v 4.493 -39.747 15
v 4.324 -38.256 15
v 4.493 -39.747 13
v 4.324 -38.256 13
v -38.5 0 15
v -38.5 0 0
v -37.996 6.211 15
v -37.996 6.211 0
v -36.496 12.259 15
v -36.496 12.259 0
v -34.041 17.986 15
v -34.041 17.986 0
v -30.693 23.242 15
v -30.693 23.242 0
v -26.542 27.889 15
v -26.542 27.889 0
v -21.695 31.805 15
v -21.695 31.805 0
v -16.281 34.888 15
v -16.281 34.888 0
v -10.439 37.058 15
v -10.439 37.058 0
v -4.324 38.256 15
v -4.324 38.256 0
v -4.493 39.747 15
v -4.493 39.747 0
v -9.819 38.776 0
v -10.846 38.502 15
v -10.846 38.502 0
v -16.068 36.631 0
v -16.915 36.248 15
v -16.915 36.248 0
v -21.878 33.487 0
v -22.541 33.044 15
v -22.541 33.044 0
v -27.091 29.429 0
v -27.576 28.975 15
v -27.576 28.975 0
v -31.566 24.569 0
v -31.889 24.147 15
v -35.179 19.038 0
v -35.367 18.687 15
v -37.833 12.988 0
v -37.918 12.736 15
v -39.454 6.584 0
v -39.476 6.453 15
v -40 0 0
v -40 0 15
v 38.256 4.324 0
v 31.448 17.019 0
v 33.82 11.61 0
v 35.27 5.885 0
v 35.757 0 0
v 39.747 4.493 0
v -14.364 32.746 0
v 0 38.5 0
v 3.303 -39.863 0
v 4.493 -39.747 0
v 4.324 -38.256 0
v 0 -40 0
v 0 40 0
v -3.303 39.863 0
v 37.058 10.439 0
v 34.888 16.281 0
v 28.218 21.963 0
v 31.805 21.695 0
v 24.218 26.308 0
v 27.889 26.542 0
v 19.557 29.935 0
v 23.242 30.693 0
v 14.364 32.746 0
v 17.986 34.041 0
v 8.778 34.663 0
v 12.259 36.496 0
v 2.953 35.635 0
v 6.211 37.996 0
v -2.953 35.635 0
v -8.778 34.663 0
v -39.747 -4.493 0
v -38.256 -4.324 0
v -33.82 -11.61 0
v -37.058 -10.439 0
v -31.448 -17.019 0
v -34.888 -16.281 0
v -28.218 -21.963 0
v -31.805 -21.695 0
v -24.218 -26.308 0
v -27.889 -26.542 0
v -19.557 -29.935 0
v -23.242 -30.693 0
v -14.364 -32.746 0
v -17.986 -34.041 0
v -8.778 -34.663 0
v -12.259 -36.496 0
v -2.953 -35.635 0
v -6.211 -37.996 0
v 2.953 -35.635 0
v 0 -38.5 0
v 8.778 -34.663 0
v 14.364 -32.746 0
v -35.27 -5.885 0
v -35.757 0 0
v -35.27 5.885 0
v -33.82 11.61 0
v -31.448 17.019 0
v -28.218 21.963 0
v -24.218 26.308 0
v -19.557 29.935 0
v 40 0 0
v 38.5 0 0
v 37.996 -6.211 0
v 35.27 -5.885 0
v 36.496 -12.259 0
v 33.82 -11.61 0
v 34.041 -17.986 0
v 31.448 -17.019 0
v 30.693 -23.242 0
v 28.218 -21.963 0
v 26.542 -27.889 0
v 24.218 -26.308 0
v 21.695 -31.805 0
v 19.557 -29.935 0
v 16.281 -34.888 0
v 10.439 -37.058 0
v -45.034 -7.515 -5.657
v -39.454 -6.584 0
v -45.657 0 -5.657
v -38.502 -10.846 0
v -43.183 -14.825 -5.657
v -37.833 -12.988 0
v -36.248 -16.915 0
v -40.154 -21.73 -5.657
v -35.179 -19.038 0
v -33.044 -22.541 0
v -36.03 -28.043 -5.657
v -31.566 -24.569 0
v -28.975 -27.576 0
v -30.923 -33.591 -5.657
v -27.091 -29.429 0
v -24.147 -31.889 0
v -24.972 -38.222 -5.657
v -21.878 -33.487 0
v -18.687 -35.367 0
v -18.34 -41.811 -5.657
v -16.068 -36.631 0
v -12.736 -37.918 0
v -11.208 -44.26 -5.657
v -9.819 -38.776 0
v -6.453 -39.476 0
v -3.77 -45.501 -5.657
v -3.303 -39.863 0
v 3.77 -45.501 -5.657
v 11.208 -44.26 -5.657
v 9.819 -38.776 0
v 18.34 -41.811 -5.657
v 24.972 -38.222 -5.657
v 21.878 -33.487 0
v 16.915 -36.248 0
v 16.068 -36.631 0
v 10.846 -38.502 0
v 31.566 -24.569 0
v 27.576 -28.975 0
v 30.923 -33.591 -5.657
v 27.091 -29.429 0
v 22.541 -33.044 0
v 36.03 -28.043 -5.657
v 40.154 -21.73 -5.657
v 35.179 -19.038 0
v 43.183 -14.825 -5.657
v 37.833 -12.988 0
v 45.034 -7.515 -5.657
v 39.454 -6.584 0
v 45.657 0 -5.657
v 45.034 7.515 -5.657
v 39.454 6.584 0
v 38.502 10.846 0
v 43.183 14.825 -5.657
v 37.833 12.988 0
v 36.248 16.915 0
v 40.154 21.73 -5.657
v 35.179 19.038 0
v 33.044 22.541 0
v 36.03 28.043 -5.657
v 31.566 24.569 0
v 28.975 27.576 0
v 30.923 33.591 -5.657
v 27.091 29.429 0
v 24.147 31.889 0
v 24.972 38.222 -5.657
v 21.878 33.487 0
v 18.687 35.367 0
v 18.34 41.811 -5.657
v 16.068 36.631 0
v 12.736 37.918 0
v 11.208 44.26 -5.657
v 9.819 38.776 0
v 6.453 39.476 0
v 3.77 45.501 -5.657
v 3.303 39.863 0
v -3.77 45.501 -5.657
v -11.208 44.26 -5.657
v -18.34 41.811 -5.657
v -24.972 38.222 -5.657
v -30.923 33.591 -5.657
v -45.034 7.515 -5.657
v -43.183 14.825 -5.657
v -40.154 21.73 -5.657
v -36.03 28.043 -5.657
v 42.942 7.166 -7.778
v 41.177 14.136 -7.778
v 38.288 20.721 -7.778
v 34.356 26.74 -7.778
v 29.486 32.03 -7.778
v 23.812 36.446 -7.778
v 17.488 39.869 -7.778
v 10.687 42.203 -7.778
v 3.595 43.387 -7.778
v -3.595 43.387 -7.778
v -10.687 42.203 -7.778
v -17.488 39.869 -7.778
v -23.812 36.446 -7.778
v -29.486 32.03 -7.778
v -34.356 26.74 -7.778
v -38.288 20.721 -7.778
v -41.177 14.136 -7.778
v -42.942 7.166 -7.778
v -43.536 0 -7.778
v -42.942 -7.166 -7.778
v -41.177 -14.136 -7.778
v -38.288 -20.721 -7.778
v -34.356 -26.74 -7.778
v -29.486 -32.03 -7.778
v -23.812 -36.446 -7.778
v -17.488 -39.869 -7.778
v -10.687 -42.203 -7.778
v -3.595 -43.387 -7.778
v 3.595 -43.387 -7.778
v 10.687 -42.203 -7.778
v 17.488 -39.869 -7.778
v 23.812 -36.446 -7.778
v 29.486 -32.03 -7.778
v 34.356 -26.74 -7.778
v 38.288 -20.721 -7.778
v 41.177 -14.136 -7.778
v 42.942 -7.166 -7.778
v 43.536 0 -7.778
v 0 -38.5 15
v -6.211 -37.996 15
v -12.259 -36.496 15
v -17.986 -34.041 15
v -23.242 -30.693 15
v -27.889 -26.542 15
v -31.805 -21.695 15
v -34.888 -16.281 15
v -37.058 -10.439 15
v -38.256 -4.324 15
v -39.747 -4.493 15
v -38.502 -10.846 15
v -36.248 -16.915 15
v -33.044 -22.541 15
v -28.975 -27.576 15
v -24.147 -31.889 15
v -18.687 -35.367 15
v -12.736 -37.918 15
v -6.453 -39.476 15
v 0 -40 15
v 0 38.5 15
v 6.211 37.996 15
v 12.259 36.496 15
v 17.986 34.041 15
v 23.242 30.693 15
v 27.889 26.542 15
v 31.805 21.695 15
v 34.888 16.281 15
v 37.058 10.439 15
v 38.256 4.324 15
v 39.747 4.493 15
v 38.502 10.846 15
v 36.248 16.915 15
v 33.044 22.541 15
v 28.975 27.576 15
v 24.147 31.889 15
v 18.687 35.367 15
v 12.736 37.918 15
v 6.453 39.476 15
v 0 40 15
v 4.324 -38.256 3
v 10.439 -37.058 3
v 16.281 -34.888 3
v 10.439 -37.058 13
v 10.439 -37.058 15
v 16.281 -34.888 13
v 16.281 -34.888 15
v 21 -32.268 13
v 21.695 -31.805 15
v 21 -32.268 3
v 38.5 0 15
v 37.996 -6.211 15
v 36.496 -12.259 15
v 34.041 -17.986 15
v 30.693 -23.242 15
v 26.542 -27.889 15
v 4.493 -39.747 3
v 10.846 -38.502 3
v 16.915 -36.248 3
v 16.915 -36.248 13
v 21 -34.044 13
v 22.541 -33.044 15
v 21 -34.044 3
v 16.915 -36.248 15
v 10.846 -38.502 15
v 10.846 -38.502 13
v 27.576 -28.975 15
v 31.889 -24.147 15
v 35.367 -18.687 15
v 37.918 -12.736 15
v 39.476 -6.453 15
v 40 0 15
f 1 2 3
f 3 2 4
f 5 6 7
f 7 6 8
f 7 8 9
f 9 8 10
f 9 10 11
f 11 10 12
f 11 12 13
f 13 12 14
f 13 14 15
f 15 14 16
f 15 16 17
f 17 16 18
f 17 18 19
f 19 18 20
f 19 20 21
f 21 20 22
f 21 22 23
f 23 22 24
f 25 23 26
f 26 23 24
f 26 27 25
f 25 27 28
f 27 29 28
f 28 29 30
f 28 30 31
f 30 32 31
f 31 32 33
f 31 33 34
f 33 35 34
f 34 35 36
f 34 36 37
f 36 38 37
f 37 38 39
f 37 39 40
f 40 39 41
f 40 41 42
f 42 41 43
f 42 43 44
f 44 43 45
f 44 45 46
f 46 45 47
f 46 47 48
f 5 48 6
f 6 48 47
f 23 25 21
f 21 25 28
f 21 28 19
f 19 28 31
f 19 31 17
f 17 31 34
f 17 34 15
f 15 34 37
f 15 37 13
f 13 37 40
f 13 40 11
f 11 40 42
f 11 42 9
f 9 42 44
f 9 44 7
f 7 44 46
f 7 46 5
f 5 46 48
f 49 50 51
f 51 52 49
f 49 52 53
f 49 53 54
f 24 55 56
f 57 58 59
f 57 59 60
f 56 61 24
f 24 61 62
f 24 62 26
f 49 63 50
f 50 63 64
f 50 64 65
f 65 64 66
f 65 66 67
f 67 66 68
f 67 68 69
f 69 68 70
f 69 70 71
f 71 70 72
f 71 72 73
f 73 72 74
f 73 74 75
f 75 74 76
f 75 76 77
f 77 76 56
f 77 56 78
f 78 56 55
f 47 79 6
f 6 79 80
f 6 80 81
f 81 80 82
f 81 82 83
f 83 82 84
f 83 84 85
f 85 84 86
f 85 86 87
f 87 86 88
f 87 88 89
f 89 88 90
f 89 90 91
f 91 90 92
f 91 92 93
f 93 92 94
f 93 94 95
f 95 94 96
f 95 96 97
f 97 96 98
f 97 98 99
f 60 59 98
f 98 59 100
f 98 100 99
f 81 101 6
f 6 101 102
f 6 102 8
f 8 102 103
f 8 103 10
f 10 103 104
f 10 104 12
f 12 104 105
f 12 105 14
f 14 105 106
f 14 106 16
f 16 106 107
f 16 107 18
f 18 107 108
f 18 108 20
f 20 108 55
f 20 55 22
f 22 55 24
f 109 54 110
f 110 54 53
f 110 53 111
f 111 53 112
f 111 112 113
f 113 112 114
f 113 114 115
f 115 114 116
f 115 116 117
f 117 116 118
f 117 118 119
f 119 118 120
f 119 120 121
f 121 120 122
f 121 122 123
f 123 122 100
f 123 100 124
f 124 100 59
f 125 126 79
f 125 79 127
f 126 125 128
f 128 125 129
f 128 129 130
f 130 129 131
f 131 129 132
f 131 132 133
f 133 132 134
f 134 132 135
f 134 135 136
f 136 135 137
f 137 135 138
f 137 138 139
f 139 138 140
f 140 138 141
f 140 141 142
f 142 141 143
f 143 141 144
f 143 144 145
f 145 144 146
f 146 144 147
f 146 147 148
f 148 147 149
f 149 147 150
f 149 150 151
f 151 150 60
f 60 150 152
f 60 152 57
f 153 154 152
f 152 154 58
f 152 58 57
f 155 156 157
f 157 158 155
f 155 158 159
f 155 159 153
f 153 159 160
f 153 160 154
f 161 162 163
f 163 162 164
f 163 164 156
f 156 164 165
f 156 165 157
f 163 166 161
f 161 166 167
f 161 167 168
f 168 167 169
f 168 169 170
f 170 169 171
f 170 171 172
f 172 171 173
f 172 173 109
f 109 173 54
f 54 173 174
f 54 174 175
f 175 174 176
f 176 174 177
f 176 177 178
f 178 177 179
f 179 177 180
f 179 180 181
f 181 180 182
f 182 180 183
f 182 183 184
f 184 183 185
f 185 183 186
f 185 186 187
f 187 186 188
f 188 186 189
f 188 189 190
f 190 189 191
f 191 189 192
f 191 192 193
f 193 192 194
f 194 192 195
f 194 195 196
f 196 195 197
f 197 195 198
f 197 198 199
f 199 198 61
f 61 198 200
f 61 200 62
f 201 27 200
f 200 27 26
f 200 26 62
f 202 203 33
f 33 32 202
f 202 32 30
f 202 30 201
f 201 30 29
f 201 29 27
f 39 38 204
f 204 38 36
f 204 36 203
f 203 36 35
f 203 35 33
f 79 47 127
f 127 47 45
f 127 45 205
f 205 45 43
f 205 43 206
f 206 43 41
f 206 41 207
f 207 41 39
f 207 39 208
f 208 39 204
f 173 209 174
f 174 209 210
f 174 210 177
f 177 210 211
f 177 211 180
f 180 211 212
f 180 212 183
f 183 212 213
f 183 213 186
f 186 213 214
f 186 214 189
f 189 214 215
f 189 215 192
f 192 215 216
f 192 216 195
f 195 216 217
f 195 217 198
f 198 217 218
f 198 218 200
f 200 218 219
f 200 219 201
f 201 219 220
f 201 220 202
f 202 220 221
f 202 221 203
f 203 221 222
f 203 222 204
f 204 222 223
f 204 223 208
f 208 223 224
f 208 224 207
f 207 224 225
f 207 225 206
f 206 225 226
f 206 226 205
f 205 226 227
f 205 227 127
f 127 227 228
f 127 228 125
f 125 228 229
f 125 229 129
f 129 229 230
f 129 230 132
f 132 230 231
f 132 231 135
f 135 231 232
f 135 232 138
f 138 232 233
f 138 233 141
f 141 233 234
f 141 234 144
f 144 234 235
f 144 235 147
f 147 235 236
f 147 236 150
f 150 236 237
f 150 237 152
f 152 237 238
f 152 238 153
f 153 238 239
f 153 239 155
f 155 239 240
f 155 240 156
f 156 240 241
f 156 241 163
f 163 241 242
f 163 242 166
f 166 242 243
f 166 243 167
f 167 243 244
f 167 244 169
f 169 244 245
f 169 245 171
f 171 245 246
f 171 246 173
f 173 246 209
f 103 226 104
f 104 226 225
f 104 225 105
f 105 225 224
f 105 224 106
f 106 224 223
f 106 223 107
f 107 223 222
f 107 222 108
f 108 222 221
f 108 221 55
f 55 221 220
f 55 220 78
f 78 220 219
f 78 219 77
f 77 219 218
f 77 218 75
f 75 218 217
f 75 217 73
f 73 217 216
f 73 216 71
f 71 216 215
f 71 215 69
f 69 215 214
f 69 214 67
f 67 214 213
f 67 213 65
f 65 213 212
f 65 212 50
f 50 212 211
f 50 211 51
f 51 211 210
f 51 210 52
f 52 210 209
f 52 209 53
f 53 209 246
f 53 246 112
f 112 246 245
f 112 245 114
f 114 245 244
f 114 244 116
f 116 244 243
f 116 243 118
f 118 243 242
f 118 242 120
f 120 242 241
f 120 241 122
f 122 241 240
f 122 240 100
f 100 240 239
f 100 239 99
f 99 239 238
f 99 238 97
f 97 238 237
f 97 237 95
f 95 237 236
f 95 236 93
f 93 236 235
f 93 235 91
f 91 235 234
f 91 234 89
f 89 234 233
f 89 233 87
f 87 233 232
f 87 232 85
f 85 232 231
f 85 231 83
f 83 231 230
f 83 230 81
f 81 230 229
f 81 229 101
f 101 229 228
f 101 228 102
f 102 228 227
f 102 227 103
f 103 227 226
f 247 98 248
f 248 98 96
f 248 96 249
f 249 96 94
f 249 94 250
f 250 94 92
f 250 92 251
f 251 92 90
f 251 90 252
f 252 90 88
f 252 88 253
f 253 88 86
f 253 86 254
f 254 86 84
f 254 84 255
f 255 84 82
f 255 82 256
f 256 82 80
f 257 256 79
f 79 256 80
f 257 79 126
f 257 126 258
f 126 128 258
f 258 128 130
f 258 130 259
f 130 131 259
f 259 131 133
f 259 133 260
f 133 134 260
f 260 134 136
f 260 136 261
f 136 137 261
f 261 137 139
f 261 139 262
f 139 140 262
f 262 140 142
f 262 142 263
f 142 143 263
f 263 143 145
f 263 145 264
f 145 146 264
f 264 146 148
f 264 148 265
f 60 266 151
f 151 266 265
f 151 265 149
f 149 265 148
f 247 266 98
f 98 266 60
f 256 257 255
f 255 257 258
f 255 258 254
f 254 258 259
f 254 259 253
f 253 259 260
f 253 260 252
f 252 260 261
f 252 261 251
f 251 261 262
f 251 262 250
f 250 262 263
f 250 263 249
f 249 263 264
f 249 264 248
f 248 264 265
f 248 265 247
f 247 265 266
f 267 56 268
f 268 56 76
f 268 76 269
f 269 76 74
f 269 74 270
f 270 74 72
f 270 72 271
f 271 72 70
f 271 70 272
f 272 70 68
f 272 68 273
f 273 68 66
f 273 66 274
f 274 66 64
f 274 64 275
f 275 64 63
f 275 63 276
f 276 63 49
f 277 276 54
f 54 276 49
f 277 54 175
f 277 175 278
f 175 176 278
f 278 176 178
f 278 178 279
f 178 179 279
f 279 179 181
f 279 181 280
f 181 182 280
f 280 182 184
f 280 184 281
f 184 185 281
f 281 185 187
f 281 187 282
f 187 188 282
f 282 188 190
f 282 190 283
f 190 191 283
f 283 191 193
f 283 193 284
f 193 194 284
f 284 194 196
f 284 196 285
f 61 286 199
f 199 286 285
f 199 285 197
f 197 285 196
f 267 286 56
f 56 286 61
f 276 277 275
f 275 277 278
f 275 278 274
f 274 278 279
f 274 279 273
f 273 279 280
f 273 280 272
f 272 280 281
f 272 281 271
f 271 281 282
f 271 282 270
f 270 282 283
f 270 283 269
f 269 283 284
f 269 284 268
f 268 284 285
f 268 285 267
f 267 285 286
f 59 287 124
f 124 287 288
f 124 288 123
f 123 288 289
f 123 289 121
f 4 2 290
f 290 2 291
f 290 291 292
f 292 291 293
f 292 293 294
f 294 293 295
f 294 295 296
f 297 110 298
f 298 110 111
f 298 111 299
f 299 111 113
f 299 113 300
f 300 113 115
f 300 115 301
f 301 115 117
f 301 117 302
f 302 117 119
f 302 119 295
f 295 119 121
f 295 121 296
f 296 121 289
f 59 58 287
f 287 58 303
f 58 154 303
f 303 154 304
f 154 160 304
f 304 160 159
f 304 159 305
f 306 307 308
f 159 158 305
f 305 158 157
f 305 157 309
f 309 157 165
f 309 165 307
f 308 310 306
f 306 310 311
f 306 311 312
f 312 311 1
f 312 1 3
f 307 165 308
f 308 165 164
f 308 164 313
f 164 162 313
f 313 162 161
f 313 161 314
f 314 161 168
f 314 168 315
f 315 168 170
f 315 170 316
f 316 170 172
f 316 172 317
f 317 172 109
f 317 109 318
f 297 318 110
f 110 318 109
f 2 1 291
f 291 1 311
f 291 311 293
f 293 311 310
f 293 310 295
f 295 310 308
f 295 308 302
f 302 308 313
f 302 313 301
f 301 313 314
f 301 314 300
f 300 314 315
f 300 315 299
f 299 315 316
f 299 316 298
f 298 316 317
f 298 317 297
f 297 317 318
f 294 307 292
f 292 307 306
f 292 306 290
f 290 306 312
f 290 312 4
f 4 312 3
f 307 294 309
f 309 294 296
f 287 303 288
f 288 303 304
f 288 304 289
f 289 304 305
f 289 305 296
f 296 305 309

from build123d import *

# Parameters (mm, degrees)
SALIENTE_EXTRUIR1_DEPTH   = 15
SALIENTE_EXTRUIR1_2_DEPTH = 15
SALIENTE_EXTRUIR1_3_DEPTH = 15
SALIENTE_EXTRUIR1_4_DEPTH = 15
CORTAR_EXTRUIR1_REACH     = 68.288
CROQUIS3_W                = 25
CROQUIS3_H                = 10


with BuildPart() as part:
    # Croquis1 → Saliente-Extruir1 (new body)
    with BuildSketch(Plane.XY):
        with BuildLine():
            Line((-4.324392398, 38.256367187), (-4.492875219, 39.746875))
            ThreePointArc((-4.492875219, 39.746875), (-29.830479453, 26.648498937), (-40, 0))
            Line((-40, 0), (-38.5, 0))
            ThreePointArc((-38.5, 0), (-28.711836473, 25.649180227), (-4.324392398, 38.256367187))
        make_face()
    extrude(amount=SALIENTE_EXTRUIR1_DEPTH)



with BuildPart() as body_2:
    # Croquis1 → Saliente-Extruir1 2 (new body)
    with BuildSketch(Plane.XY):
        with BuildLine():
            Line((-38.256367187, -4.324392398), (-39.746875, -4.492875219))
            ThreePointArc((-39.746875, -4.492875219), (-26.648498937, -29.830479453), (0, -40))
            Line((0, -40), (0, -38.5))
            ThreePointArc((0, -38.5), (-25.649180227, -28.711836473), (-38.256367187, -4.324392398))
        make_face()
    extrude(amount=SALIENTE_EXTRUIR1_2_DEPTH)


with BuildPart() as body_3:
    # Croquis1 → Saliente-Extruir1 3 (new body)
    with BuildSketch(Plane.XY):
        with BuildLine():
            ThreePointArc((39.746875, 4.492875219), (26.648498937, 29.830479453), (0, 40))
            Line((0, 40), (0, 38.5))
            ThreePointArc((0, 38.5), (25.649180227, 28.711836473), (38.256367187, 4.324392398))
            Line((38.256367188, 4.324392398), (39.746875, 4.492875219))
        make_face()
    extrude(amount=SALIENTE_EXTRUIR1_3_DEPTH)


with BuildPart() as body_4:
    # Croquis1 → Saliente-Extruir1 4 (new body)
    with BuildSketch(Plane.XY):
        with BuildLine():
            ThreePointArc((4.492875219, -39.746875), (29.830479453, -26.648498937), (40, 0))
            Line((40, 0), (38.5, 0))
            ThreePointArc((38.5, 0), (28.711836473, -25.649180227), (4.324392398, -38.256367188))
            Line((4.324392398, -38.256367188), (4.492875219, -39.746875))
        make_face()
    extrude(amount=SALIENTE_EXTRUIR1_4_DEPTH)


with BuildPart() as part_1:
    add(part.part)

    add(body_2.part)  # Revolución1 merges body 2

    add(body_3.part)  # Revolución1 merges body 3

    add(body_4.part)  # Revolución1 merges body 4
    # Croquis2 → Revolución1 (revolve)
    with BuildSketch(Plane(origin=(0, 0, 0), x_dir=(1, 0, 0), z_dir=(0, 1, 0)), mode=Mode.PRIVATE) as revoluci_n1_sk:
        Polygon((-40, 0), (-45.656854249, 5.656854249), (-43.535533906, 7.778174593), (-35.757359313, 0), align=None)
    revolve(revoluci_n1_sk.sketch.rotate(Axis((0, 0, 0), (0, 0, -1)), 180), axis=Axis((0, 0, 0), (0, 0, -1)))

    # Croquis3 → Cortar-Extruir1 (cut, up to next)
    with BuildSketch(Plane(origin=(0, 0, 0), x_dir=(1, 0, 0), z_dir=(0, 1, 0)), mode=Mode.PRIVATE) as cortar_extruir1_sk1:
        with Locations((8.5, -8)):
            Rectangle(CROQUIS3_W, CROQUIS3_H)
    cortar_extruir1_tool1 = extrude(cortar_extruir1_sk1.sketch, amount=-CORTAR_EXTRUIR1_REACH, mode=Mode.PRIVATE) & part_1.part
    add(cortar_extruir1_tool1.solids().sort_by_distance((8.5, 0, 8))[0], mode=Mode.SUBTRACT)


solid = part_1.part
